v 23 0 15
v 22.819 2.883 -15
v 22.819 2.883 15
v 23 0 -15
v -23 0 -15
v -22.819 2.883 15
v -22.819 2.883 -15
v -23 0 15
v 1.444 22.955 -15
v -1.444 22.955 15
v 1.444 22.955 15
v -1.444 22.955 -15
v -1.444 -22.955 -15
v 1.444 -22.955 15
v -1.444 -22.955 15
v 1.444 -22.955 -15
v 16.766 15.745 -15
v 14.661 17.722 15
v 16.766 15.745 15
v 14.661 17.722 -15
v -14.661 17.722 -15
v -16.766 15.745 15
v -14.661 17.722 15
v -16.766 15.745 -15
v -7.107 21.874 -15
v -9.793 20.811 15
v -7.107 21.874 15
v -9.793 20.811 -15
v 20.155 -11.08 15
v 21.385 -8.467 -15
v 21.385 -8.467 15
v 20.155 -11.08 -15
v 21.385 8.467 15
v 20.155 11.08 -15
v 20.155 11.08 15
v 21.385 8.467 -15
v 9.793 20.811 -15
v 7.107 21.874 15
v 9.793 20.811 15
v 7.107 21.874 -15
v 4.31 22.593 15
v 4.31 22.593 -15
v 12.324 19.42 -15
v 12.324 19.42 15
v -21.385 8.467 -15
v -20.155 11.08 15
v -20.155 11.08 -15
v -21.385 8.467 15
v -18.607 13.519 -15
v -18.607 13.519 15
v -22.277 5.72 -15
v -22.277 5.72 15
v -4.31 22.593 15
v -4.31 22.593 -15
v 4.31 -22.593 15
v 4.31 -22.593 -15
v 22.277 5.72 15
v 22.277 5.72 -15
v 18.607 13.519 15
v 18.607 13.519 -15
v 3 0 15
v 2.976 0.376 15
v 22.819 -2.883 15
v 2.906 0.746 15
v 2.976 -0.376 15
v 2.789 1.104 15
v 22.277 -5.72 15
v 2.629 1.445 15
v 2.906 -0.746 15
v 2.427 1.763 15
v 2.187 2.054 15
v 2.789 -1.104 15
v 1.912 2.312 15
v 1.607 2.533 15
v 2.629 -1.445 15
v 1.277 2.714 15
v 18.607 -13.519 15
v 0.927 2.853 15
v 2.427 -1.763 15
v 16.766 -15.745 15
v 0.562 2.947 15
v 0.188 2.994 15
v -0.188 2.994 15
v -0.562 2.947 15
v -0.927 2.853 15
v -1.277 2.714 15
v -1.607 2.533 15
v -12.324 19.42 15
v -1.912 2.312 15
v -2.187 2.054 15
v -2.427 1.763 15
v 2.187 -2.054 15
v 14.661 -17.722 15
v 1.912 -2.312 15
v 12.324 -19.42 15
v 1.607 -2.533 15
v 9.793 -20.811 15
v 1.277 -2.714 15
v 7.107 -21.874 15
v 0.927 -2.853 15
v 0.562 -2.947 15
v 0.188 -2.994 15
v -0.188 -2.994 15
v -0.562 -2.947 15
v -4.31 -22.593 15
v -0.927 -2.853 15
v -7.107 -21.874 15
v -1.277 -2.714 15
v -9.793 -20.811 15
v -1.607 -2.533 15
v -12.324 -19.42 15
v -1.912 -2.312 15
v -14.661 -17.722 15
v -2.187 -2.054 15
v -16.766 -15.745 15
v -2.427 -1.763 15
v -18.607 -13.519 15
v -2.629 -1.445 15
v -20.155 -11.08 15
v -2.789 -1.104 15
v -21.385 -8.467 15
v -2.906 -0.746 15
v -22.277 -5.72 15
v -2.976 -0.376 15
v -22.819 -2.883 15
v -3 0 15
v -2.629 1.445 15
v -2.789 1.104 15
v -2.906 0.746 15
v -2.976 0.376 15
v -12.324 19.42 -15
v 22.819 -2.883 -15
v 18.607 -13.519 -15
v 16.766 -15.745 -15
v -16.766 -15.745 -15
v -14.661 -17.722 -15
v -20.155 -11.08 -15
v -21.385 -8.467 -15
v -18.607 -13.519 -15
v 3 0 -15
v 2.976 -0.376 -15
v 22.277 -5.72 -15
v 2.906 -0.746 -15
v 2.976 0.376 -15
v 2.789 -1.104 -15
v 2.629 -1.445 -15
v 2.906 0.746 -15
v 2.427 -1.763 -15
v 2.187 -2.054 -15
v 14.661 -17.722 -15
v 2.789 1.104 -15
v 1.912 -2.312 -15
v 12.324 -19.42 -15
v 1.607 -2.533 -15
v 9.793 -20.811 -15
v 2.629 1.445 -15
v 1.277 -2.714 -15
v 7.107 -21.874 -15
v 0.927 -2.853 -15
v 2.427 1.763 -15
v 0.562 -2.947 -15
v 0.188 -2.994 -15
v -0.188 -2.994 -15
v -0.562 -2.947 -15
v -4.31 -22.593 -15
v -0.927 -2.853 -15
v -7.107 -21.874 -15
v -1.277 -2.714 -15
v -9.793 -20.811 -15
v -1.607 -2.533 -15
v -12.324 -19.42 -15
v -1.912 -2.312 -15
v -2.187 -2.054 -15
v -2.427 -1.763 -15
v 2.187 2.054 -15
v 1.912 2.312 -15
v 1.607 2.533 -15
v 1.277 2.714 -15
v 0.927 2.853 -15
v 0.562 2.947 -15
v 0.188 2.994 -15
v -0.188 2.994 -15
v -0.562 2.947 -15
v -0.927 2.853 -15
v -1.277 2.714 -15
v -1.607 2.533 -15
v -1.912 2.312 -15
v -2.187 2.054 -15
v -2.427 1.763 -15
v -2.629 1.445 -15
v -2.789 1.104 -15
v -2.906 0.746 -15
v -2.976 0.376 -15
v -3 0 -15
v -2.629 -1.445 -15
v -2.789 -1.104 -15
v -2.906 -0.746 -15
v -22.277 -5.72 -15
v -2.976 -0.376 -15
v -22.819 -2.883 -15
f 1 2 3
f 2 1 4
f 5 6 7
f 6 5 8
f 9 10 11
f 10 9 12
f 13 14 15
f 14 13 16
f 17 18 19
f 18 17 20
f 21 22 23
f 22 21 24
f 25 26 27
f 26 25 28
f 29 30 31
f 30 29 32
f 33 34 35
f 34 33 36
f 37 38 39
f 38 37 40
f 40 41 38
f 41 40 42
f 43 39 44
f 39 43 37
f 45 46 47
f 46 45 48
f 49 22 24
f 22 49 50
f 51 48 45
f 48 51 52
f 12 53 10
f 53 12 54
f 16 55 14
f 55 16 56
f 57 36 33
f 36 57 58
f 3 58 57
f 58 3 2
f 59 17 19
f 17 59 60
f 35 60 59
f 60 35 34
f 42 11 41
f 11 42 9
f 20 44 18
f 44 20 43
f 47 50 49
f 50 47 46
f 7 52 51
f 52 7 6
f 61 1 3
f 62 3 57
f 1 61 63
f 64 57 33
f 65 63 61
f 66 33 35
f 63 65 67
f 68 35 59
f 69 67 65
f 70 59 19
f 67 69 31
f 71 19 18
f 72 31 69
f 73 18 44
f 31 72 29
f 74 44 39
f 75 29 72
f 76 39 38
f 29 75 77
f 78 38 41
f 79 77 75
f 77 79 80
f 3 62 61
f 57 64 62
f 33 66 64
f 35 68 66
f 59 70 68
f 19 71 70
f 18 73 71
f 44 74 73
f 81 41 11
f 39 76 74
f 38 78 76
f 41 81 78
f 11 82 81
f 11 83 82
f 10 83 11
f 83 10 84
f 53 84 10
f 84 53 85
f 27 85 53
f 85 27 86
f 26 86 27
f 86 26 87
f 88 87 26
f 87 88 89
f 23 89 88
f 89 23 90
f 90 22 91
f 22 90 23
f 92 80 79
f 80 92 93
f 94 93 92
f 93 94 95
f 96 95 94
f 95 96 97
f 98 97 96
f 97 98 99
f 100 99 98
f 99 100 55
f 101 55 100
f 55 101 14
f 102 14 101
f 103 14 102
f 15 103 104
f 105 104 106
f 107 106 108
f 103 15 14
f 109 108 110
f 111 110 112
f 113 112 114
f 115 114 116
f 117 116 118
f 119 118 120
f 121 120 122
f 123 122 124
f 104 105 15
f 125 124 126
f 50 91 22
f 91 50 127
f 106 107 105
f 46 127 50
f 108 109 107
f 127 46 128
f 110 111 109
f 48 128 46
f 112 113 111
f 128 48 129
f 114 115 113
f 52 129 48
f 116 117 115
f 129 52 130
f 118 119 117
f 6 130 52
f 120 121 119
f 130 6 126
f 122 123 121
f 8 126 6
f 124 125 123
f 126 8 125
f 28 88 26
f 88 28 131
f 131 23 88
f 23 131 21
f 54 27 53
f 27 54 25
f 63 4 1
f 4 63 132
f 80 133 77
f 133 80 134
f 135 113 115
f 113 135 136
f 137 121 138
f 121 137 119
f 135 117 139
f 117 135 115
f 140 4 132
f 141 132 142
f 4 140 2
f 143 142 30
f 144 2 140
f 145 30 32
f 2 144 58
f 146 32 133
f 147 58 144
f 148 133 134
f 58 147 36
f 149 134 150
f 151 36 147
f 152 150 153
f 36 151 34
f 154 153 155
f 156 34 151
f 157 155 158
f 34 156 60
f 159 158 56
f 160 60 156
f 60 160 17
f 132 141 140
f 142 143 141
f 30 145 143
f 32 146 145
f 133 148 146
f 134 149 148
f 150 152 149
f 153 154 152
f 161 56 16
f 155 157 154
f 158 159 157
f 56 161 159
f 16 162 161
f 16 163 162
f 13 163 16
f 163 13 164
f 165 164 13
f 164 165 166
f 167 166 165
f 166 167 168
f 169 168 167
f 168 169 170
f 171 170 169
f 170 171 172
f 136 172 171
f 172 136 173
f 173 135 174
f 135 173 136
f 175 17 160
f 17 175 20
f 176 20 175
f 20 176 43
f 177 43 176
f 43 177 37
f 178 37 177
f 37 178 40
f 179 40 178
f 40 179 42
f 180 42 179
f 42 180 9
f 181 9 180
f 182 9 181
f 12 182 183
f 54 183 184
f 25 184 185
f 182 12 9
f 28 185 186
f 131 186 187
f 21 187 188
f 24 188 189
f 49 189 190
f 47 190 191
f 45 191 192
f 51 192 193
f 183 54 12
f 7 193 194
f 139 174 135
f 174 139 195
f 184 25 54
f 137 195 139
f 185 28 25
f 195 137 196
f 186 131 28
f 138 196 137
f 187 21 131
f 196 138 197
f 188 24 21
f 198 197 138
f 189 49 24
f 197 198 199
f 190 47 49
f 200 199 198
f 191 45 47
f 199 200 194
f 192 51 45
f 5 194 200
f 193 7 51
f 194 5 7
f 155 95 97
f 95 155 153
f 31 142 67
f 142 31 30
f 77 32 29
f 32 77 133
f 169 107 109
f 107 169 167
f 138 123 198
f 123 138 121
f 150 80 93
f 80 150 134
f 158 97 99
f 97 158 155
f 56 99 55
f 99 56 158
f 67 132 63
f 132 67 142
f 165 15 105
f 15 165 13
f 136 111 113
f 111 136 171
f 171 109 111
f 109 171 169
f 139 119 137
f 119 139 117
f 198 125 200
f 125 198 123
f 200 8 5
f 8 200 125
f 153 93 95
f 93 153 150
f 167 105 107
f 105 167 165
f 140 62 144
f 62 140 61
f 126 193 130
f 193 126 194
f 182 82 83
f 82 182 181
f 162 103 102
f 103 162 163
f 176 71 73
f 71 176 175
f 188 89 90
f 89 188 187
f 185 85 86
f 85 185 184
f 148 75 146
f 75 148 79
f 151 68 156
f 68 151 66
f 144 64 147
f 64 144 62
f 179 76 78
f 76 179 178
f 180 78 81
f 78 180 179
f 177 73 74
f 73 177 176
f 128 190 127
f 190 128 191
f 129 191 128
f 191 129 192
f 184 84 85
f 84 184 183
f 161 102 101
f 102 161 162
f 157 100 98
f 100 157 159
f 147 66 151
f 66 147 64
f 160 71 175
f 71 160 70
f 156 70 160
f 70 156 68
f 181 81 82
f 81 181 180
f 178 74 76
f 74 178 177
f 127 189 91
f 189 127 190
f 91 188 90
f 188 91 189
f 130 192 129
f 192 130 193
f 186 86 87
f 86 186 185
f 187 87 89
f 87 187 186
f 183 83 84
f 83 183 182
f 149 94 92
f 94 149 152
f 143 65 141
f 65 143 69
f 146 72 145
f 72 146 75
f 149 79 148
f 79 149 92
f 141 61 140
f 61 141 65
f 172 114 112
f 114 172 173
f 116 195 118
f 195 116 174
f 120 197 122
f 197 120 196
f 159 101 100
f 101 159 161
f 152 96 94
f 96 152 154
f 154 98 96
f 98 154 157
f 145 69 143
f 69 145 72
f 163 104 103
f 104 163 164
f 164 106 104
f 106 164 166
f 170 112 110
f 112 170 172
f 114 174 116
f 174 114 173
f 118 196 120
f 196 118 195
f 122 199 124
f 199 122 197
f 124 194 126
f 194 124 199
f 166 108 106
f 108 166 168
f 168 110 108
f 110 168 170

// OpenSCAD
$fn = 50;


difference() {
	union() {
		translate(v = [0, 0, -15.0000000000]) {
			cylinder(h = 30, r = 23.0000000000);
		}
	}
	union() {
		translate(v = [0, 0, -100.0000000000]) {
			cylinder(h = 200, r = 3.0000000000);
		}
	}
}
